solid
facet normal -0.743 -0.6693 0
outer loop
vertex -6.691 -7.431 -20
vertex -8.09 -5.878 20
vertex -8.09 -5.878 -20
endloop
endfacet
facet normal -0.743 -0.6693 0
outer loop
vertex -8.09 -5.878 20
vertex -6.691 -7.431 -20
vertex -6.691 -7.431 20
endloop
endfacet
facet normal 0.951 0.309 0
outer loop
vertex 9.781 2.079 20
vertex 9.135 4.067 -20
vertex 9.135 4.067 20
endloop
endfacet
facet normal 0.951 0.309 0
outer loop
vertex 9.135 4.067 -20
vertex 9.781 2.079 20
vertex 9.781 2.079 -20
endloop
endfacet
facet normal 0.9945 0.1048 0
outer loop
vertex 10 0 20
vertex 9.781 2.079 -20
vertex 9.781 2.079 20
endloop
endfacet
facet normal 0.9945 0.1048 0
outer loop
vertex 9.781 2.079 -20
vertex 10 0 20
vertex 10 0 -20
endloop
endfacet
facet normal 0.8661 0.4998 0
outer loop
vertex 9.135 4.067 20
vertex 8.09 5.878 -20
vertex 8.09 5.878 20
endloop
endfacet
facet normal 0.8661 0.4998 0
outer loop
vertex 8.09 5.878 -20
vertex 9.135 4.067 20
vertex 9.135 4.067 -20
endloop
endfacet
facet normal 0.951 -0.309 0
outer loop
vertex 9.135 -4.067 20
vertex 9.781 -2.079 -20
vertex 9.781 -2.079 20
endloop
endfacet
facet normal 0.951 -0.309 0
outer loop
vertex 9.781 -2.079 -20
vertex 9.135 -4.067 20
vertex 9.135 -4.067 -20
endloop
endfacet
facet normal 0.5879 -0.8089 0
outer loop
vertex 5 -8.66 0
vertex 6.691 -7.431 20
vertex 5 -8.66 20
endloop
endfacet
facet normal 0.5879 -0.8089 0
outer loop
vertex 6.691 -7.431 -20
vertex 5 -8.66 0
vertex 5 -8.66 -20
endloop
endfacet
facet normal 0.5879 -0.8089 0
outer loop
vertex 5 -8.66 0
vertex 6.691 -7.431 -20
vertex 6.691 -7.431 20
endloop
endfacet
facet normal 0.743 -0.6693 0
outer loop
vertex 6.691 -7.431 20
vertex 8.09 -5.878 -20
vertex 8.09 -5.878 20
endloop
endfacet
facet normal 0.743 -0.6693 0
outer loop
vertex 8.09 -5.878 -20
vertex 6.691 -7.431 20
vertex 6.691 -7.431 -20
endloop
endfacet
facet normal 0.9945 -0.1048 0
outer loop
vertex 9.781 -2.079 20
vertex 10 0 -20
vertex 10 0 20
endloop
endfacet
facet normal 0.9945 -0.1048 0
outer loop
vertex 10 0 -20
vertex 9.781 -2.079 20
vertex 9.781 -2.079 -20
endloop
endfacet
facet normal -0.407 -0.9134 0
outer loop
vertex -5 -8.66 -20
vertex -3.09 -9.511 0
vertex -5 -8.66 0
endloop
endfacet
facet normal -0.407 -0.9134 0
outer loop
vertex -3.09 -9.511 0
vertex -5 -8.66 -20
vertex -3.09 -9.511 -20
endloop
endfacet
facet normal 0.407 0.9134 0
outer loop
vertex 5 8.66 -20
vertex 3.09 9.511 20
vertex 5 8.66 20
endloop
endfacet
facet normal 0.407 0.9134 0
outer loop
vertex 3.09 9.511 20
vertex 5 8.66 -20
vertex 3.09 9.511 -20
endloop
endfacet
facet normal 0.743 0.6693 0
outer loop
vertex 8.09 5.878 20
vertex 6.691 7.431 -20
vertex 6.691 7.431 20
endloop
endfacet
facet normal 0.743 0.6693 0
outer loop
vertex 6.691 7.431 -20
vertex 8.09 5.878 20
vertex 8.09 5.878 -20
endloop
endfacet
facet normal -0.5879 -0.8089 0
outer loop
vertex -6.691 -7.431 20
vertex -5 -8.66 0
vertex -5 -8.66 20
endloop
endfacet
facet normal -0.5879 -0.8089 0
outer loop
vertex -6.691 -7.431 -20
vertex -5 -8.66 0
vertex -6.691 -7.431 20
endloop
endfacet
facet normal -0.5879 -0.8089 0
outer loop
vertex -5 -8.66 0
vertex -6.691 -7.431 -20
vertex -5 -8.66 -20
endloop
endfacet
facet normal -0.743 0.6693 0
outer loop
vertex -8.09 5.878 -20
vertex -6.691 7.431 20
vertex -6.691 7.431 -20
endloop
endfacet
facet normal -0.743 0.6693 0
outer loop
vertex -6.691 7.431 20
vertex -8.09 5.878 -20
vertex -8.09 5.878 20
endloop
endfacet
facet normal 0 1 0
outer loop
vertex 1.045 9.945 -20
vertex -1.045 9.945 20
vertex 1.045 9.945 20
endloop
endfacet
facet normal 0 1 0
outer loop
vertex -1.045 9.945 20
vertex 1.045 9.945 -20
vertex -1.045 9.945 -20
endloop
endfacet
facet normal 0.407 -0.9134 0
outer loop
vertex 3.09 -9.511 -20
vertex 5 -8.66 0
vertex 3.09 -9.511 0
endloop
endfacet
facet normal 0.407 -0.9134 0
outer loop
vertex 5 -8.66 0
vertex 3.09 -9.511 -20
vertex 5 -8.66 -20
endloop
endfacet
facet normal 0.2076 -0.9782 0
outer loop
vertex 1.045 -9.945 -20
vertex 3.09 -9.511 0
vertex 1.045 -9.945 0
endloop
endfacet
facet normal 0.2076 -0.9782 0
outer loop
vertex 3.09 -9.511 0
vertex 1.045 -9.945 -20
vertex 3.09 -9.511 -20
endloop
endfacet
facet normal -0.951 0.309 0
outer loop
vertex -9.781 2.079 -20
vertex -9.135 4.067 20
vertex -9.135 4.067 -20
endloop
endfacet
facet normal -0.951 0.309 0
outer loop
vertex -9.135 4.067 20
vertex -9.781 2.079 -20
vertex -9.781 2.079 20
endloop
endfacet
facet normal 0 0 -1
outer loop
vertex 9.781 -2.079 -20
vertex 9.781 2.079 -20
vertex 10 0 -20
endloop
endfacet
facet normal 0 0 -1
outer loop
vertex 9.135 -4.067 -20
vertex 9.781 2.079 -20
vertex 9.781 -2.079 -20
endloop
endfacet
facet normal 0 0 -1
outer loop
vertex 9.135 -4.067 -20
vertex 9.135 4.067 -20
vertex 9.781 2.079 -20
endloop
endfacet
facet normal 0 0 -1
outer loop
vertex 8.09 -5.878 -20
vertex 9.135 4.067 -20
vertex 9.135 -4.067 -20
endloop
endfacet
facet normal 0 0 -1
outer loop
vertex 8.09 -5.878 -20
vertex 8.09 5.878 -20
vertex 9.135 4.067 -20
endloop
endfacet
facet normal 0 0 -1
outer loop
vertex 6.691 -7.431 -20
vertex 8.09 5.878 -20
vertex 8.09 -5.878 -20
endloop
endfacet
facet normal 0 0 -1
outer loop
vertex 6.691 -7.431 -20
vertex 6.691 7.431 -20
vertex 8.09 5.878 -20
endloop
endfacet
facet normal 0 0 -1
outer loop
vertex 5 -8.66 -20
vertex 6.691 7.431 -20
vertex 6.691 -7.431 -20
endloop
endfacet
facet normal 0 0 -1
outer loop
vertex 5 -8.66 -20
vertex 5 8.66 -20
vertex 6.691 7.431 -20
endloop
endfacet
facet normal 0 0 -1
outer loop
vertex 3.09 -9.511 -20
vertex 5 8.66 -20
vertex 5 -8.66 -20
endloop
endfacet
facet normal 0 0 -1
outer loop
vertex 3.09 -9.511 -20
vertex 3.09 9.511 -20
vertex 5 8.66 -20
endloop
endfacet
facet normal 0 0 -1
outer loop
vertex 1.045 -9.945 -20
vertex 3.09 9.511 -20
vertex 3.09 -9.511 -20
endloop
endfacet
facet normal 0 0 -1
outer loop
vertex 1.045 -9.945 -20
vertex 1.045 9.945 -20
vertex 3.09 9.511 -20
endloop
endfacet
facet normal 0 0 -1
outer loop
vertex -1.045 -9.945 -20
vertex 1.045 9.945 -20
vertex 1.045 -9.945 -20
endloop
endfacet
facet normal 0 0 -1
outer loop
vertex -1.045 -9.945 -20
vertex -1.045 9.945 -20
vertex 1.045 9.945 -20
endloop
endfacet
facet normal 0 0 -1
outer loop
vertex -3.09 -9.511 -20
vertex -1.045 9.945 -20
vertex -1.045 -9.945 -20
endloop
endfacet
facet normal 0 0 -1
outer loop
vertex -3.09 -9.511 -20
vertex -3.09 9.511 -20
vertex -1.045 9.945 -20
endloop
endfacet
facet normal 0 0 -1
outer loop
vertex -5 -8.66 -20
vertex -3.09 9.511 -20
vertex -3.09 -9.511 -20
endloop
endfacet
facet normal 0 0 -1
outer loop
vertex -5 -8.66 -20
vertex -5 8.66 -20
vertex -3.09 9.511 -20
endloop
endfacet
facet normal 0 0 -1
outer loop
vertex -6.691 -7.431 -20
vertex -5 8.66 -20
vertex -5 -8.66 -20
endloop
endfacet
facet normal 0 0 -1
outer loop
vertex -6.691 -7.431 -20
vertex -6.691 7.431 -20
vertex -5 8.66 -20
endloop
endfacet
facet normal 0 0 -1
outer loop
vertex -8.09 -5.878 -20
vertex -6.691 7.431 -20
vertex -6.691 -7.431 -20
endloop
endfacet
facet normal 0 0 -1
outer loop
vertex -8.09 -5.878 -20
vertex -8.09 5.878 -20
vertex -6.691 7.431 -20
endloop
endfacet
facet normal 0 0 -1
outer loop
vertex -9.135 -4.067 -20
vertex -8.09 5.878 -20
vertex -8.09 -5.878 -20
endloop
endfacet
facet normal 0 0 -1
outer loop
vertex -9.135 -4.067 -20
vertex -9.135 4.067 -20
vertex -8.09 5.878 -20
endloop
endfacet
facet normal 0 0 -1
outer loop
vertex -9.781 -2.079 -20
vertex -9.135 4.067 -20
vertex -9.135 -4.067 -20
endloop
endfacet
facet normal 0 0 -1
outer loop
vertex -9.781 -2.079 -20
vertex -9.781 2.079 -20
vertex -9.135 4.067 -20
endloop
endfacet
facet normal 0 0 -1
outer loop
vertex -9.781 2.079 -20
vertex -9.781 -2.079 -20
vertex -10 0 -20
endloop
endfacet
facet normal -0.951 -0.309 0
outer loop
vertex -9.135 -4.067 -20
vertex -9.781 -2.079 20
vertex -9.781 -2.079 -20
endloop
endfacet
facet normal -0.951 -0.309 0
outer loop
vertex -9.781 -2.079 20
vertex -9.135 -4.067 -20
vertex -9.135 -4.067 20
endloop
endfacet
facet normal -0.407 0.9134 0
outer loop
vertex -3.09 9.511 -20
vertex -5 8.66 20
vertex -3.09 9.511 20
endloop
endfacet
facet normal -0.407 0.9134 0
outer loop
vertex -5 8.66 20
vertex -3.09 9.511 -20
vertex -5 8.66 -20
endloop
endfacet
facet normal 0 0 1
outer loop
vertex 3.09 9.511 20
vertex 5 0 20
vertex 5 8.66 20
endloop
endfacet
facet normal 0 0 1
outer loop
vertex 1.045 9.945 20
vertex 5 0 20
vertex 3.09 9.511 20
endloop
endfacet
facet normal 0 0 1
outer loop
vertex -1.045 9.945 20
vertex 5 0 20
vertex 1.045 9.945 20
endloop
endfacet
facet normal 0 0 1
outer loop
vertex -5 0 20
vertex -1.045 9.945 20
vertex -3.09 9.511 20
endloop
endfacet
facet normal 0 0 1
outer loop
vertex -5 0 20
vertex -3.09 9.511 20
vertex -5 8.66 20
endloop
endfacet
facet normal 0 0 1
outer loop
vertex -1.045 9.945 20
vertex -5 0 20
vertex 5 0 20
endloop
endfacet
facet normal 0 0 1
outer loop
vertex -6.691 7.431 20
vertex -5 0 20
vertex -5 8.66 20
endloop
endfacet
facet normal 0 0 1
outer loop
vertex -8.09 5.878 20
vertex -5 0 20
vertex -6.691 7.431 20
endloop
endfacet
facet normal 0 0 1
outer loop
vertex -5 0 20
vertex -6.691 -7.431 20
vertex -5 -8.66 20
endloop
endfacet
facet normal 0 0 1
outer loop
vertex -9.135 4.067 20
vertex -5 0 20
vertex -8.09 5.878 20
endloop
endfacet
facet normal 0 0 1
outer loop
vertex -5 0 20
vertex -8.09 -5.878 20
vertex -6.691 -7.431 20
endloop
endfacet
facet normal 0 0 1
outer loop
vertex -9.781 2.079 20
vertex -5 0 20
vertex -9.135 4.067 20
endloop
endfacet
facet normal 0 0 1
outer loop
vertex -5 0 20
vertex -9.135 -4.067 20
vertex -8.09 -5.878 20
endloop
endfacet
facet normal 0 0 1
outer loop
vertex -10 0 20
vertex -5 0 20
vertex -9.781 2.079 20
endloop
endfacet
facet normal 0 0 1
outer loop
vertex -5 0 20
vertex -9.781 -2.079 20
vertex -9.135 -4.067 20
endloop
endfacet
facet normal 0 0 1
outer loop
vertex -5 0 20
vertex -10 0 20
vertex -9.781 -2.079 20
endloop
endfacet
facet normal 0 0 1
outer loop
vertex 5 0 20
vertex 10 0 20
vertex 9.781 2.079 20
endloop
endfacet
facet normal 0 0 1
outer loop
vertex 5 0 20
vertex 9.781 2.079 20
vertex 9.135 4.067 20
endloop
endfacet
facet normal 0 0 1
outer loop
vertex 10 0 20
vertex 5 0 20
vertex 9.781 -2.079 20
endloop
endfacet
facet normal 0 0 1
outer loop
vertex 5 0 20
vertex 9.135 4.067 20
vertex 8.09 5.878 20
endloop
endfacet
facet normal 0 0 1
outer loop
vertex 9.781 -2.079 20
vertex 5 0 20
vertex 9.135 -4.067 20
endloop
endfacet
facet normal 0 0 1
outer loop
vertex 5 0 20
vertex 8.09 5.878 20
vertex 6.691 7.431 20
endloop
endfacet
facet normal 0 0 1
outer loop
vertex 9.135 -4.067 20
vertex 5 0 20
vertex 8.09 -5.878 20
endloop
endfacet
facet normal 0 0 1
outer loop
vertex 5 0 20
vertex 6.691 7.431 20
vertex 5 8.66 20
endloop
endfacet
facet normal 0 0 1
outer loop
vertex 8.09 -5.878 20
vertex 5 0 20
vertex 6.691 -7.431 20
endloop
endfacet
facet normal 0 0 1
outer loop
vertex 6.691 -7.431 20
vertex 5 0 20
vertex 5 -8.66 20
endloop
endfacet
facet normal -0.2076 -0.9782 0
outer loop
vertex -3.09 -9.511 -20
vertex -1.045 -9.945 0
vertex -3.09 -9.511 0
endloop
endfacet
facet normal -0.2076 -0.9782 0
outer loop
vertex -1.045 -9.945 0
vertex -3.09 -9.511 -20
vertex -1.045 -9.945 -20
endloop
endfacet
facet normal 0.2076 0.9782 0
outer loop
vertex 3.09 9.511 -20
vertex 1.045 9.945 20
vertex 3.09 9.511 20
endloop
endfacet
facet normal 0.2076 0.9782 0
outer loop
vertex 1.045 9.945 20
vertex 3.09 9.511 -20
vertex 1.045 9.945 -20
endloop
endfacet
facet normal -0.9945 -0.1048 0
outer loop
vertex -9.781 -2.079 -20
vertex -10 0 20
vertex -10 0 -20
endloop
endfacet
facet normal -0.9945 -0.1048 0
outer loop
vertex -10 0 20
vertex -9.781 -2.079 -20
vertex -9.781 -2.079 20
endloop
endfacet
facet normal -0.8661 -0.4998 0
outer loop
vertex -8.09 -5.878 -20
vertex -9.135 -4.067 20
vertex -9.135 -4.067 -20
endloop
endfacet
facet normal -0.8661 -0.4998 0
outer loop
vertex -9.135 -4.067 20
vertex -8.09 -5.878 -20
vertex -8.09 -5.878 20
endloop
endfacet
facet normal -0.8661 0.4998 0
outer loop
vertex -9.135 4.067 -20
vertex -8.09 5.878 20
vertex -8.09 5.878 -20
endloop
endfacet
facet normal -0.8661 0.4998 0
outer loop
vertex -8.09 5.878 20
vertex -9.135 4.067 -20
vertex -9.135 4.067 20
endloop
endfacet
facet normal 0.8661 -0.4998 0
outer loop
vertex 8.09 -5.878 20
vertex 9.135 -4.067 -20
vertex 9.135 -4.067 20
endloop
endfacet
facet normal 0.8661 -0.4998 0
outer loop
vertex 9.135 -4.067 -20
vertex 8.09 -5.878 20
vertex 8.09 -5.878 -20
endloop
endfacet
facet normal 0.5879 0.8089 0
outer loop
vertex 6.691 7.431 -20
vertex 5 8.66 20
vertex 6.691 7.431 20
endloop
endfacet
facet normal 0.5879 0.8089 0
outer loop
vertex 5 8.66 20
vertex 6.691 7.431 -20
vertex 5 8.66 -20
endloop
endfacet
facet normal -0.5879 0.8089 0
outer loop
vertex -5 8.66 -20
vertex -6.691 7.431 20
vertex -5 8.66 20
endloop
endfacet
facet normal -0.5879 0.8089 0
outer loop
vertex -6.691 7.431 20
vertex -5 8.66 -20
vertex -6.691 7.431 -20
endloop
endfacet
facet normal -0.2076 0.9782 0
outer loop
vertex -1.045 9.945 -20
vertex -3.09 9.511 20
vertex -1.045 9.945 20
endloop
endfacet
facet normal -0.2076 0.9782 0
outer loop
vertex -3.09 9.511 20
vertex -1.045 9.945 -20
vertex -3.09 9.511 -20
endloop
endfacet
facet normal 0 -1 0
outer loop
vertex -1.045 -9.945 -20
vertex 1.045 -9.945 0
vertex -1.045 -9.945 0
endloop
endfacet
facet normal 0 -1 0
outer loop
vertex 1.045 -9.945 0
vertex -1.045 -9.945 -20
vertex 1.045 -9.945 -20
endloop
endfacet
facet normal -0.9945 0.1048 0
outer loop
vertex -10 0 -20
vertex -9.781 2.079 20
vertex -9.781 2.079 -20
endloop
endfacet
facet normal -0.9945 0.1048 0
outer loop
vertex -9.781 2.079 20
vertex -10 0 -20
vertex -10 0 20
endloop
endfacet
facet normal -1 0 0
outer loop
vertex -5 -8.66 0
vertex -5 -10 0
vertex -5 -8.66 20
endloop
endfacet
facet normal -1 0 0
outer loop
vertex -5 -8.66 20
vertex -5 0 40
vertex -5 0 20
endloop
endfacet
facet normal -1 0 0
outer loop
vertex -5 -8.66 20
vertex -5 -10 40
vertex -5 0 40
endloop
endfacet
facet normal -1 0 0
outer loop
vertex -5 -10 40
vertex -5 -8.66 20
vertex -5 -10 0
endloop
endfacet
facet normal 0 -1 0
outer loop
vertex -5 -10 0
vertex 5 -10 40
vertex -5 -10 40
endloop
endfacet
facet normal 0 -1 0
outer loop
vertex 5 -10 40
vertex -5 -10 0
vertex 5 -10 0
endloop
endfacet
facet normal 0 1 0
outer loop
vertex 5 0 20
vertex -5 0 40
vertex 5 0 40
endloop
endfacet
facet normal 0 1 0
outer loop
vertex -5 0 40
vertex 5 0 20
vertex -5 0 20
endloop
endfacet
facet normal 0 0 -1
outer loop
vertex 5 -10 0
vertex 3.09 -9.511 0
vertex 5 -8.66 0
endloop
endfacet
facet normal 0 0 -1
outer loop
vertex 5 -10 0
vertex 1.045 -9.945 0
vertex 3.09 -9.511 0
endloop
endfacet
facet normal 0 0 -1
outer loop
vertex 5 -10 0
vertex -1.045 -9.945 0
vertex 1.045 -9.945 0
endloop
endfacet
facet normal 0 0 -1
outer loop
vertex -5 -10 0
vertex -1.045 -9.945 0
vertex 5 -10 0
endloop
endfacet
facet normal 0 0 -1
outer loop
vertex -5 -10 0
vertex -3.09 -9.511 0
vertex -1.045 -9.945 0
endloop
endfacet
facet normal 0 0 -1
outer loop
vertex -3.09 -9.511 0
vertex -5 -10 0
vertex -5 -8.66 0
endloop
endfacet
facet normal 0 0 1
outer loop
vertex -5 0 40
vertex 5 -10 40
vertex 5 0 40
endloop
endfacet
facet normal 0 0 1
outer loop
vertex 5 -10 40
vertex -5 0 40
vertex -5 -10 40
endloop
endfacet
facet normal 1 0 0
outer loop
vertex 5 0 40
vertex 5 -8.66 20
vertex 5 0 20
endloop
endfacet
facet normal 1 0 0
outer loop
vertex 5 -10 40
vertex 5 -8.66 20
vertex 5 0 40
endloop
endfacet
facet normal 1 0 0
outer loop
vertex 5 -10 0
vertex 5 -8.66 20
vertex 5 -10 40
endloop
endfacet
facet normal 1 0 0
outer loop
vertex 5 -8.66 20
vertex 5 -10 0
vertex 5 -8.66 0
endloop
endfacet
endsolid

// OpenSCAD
// Parameters for dimensions
cylinder_diameter = 20;
cylinder_height = 40;
rectangular_length = 40;
rectangular_width = 10;
rectangular_height = 10;

// Function to create the cylindrical mount
module cylindrical_mount() {
    cylinder(d = cylinder_diameter, h = cylinder_height, center = true);
}

// Function to create the rectangular tang
module rectangular_tang() {
    translate([0, 0, cylinder_height / 2])
    rotate([90, 0, 0])  // Adjust the orientation to be perpendicular 
    translate([-rectangular_width / 2, -rectangular_length / 2, 0])
    cube([rectangular_width, rectangular_length, rectangular_height], center = false);
}

// Assembly of components
module flexible_coupling() {
    // Base layer - cylindrical_mount
    cylindrical_mount();
    // Protruding layer - rectangular_tang
    rectangular_tang();
}

// Render the model
flexible_coupling();
